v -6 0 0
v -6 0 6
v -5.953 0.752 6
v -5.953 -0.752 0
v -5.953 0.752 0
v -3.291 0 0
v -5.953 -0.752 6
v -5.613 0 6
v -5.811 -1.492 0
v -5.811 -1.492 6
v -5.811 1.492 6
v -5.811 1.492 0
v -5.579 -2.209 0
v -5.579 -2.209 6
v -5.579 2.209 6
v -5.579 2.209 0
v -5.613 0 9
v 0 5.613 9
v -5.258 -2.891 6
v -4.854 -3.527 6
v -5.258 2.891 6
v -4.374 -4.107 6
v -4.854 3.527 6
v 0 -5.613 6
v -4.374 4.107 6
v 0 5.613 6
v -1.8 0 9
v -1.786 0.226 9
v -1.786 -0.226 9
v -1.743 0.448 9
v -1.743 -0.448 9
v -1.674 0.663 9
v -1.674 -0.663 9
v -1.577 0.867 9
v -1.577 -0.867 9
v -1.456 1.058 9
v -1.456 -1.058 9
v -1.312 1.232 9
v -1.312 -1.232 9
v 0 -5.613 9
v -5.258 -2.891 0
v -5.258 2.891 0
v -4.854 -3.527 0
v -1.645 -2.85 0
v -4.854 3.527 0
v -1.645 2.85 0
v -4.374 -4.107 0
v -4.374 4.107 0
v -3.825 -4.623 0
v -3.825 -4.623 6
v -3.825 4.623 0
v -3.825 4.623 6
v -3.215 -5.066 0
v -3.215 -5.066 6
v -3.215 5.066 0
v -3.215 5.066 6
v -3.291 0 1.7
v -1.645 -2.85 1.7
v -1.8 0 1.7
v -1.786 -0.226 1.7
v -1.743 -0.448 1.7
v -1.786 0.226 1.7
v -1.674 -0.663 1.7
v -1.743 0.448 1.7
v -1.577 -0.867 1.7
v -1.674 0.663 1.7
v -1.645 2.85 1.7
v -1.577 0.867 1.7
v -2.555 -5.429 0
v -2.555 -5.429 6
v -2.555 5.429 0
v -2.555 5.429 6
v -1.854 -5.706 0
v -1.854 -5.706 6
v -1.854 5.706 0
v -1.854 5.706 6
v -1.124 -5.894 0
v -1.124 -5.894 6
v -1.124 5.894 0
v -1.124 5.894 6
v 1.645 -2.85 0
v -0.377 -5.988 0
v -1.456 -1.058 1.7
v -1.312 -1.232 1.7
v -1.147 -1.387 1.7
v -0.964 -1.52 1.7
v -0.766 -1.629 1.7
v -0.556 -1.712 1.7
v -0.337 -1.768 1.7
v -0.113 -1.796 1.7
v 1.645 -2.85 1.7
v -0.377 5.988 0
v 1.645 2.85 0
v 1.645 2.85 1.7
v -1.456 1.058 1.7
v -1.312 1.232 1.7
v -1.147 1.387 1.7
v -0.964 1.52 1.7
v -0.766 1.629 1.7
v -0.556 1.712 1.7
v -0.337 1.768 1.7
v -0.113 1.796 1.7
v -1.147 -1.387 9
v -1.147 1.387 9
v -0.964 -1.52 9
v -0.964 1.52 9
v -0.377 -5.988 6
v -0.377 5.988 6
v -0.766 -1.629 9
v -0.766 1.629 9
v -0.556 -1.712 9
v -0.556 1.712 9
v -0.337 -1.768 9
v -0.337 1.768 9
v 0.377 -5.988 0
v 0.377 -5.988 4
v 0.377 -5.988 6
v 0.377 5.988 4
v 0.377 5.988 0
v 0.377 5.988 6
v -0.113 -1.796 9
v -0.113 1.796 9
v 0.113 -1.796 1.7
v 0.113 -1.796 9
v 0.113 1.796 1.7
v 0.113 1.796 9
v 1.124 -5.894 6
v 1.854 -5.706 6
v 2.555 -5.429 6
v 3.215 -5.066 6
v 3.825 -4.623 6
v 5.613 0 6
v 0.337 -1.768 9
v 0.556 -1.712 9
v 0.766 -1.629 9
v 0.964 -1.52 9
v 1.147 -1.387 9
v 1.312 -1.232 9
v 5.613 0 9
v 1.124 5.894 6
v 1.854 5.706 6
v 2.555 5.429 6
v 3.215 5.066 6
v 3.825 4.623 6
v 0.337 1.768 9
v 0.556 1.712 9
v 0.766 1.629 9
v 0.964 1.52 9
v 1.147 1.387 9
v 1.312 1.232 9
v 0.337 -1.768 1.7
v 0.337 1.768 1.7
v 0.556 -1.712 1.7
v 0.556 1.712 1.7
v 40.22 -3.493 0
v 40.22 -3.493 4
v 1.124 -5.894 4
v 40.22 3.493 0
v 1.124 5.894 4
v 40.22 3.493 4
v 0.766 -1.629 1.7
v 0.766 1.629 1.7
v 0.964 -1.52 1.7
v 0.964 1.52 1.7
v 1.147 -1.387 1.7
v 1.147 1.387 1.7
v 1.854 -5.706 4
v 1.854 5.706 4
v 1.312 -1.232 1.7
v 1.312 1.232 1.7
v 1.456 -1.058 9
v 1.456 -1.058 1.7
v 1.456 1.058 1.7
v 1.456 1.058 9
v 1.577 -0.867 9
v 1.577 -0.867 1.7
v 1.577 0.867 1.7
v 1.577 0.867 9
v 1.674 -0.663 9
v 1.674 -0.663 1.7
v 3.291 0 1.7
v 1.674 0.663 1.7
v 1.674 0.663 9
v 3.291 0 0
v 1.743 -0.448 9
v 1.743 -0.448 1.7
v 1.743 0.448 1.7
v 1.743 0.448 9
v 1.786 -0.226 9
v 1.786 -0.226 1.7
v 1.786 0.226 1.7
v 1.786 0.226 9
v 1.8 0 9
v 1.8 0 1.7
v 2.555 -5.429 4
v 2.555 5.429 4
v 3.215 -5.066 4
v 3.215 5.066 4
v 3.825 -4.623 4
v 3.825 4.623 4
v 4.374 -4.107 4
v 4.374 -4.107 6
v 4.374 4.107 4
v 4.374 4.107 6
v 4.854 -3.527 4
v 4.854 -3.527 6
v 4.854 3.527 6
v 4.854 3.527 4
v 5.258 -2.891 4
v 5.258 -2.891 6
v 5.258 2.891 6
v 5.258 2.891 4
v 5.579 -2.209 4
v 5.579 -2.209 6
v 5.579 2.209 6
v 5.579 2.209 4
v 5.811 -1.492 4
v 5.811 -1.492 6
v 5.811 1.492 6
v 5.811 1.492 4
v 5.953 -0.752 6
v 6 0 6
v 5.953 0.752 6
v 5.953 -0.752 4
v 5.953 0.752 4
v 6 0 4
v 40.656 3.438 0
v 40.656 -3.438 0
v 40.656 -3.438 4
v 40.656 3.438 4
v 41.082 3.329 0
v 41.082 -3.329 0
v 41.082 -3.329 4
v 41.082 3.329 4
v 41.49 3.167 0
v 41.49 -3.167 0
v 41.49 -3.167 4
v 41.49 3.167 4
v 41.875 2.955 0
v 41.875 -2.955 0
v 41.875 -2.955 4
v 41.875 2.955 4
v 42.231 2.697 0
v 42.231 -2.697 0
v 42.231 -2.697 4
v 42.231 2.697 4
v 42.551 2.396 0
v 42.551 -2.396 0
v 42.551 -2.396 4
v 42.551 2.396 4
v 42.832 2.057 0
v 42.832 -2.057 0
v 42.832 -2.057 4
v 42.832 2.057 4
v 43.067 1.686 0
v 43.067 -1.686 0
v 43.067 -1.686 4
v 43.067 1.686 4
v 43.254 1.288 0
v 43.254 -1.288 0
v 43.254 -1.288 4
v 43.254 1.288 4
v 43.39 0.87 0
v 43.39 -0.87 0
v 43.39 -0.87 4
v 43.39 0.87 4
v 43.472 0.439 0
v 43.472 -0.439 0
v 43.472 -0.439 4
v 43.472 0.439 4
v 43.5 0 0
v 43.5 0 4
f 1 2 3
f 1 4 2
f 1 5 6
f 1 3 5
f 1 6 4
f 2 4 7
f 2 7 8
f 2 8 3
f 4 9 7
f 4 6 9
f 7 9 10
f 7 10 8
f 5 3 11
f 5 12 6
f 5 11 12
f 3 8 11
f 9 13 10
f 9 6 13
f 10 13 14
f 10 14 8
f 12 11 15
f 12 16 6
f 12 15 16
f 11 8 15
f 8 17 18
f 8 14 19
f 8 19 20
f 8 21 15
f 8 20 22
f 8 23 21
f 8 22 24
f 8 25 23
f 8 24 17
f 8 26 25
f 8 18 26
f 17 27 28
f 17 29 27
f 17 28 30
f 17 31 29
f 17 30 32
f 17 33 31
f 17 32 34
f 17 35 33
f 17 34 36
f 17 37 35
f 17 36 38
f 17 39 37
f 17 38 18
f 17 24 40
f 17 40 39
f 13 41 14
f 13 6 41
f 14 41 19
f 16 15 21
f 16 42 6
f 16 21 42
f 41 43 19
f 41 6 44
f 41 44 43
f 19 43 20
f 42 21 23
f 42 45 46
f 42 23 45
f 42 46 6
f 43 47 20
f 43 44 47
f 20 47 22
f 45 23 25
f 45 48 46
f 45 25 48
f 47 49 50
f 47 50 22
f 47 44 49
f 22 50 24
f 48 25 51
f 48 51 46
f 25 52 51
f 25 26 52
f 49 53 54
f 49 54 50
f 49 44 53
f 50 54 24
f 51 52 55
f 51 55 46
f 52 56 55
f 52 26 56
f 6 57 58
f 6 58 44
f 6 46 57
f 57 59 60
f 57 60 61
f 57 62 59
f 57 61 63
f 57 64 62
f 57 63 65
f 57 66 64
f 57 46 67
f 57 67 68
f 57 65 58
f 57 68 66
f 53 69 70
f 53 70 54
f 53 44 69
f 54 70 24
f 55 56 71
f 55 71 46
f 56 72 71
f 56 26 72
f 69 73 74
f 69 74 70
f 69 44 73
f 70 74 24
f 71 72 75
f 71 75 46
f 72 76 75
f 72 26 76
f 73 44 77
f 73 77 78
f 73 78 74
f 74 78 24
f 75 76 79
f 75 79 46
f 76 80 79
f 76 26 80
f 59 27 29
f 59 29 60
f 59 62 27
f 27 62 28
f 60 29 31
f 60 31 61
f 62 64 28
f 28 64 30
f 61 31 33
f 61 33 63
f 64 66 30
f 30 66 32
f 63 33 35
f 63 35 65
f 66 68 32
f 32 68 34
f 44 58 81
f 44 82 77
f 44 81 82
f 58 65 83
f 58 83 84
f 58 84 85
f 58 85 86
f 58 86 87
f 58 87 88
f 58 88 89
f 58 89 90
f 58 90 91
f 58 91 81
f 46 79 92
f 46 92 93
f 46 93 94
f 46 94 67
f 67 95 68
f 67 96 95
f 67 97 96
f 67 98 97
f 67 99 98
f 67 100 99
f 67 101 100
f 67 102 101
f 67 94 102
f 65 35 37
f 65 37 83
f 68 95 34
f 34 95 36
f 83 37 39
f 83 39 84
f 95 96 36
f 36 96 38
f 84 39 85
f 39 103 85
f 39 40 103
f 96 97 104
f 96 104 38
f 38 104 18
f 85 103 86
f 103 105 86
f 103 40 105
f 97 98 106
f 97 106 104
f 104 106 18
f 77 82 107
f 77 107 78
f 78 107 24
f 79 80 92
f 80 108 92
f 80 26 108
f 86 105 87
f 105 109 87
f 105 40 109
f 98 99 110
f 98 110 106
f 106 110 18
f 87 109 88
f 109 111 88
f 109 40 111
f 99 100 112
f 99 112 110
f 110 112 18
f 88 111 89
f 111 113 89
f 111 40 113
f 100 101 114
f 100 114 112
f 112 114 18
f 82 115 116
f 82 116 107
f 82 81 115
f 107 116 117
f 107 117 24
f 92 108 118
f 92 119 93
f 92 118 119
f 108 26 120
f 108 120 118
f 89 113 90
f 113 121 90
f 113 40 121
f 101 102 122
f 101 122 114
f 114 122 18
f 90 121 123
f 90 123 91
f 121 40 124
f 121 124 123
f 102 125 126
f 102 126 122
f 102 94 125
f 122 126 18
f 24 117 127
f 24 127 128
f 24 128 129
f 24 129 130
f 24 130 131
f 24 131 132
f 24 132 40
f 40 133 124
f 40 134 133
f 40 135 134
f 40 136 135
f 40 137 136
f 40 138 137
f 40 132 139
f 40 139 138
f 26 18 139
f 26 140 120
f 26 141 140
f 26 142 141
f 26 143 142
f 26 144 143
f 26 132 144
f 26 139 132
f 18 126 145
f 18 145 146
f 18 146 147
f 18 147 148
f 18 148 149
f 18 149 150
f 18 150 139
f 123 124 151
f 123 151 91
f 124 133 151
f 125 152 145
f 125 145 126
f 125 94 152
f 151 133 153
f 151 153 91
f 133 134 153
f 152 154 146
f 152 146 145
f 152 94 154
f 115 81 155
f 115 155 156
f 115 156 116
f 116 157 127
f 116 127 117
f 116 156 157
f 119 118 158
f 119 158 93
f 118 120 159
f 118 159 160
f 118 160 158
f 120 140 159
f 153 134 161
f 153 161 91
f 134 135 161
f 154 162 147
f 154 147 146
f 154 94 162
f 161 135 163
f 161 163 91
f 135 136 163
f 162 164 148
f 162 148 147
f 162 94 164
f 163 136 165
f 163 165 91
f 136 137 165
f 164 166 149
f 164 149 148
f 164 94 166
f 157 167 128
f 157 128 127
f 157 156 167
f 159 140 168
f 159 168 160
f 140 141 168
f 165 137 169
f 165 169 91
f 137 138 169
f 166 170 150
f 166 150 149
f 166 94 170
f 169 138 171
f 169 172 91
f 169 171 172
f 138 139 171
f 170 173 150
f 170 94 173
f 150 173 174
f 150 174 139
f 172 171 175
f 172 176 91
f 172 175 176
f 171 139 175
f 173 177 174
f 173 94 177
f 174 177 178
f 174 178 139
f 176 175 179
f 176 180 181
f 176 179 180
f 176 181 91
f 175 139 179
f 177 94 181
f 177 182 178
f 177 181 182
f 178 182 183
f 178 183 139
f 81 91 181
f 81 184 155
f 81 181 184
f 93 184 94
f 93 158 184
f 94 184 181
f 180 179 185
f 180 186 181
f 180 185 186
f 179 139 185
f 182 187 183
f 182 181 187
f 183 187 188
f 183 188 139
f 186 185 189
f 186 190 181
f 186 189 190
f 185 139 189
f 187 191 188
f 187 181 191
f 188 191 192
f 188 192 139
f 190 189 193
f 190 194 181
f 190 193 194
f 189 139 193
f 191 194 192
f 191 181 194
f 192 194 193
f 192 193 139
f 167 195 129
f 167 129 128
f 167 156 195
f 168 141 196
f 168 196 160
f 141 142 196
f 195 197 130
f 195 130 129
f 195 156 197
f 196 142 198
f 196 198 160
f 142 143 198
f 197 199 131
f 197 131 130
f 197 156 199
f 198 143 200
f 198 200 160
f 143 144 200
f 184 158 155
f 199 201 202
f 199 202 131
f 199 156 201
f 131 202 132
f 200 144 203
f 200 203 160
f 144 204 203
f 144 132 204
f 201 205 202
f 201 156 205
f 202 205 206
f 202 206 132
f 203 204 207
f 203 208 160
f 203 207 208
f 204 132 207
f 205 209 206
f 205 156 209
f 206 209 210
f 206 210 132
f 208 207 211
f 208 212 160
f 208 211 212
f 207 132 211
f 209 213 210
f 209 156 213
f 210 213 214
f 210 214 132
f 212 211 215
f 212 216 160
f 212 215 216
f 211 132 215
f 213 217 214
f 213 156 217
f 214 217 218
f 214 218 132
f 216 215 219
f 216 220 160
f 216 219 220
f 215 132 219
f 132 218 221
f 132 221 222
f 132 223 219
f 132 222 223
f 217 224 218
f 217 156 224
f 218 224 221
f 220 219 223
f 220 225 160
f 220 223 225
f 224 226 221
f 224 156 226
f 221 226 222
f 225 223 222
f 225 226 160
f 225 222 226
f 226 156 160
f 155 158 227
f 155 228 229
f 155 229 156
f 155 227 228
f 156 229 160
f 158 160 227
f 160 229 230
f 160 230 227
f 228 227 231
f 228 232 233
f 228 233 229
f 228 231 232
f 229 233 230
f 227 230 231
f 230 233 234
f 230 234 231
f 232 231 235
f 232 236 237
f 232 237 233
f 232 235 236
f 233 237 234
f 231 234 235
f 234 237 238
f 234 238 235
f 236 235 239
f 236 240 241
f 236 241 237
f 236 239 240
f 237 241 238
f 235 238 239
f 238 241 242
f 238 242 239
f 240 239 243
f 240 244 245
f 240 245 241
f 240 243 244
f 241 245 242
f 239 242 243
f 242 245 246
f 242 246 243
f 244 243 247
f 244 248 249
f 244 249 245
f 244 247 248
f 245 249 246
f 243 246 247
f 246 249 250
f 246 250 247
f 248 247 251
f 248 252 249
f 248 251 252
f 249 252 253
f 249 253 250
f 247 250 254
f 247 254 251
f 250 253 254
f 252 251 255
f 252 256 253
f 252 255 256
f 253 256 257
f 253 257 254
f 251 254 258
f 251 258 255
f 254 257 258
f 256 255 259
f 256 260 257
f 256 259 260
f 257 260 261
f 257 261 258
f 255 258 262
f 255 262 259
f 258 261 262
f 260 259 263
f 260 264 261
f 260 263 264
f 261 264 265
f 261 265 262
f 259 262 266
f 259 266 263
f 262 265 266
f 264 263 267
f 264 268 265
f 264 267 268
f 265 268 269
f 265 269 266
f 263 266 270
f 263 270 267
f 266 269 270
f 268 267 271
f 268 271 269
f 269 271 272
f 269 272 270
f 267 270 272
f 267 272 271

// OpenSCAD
$fn=50;
inch=25.4;

H1=3;
H2=9;

module normcube(c) {
    // normalize a cube to be positioned around the origin, like a cylinder.
    translate([-c.x/2,-c.y/2,0]) cube(c);
}

module m3_nut_cutout(height=3.4, waf=5.7) {
    // Hexagon defined using a circle
    difference() {
        cylinder(h=height, r=waf / 2 / cos(30), center=true, $fn=6);
    }
}

module screen_door_lever() {
  difference() {
    union() {
      rotate([0,0,45]) normcube([5/16*inch,5/16*inch, H2]);
      cylinder(H2-3,d=12);
      hull() {
        cylinder(4, d=12);
        translate([40,0,0]) cylinder(4,d=7);
      }
    }
    cylinder(H2,d=3.6);
    m3_nut_cutout();
  }

}

screen_door_lever();
